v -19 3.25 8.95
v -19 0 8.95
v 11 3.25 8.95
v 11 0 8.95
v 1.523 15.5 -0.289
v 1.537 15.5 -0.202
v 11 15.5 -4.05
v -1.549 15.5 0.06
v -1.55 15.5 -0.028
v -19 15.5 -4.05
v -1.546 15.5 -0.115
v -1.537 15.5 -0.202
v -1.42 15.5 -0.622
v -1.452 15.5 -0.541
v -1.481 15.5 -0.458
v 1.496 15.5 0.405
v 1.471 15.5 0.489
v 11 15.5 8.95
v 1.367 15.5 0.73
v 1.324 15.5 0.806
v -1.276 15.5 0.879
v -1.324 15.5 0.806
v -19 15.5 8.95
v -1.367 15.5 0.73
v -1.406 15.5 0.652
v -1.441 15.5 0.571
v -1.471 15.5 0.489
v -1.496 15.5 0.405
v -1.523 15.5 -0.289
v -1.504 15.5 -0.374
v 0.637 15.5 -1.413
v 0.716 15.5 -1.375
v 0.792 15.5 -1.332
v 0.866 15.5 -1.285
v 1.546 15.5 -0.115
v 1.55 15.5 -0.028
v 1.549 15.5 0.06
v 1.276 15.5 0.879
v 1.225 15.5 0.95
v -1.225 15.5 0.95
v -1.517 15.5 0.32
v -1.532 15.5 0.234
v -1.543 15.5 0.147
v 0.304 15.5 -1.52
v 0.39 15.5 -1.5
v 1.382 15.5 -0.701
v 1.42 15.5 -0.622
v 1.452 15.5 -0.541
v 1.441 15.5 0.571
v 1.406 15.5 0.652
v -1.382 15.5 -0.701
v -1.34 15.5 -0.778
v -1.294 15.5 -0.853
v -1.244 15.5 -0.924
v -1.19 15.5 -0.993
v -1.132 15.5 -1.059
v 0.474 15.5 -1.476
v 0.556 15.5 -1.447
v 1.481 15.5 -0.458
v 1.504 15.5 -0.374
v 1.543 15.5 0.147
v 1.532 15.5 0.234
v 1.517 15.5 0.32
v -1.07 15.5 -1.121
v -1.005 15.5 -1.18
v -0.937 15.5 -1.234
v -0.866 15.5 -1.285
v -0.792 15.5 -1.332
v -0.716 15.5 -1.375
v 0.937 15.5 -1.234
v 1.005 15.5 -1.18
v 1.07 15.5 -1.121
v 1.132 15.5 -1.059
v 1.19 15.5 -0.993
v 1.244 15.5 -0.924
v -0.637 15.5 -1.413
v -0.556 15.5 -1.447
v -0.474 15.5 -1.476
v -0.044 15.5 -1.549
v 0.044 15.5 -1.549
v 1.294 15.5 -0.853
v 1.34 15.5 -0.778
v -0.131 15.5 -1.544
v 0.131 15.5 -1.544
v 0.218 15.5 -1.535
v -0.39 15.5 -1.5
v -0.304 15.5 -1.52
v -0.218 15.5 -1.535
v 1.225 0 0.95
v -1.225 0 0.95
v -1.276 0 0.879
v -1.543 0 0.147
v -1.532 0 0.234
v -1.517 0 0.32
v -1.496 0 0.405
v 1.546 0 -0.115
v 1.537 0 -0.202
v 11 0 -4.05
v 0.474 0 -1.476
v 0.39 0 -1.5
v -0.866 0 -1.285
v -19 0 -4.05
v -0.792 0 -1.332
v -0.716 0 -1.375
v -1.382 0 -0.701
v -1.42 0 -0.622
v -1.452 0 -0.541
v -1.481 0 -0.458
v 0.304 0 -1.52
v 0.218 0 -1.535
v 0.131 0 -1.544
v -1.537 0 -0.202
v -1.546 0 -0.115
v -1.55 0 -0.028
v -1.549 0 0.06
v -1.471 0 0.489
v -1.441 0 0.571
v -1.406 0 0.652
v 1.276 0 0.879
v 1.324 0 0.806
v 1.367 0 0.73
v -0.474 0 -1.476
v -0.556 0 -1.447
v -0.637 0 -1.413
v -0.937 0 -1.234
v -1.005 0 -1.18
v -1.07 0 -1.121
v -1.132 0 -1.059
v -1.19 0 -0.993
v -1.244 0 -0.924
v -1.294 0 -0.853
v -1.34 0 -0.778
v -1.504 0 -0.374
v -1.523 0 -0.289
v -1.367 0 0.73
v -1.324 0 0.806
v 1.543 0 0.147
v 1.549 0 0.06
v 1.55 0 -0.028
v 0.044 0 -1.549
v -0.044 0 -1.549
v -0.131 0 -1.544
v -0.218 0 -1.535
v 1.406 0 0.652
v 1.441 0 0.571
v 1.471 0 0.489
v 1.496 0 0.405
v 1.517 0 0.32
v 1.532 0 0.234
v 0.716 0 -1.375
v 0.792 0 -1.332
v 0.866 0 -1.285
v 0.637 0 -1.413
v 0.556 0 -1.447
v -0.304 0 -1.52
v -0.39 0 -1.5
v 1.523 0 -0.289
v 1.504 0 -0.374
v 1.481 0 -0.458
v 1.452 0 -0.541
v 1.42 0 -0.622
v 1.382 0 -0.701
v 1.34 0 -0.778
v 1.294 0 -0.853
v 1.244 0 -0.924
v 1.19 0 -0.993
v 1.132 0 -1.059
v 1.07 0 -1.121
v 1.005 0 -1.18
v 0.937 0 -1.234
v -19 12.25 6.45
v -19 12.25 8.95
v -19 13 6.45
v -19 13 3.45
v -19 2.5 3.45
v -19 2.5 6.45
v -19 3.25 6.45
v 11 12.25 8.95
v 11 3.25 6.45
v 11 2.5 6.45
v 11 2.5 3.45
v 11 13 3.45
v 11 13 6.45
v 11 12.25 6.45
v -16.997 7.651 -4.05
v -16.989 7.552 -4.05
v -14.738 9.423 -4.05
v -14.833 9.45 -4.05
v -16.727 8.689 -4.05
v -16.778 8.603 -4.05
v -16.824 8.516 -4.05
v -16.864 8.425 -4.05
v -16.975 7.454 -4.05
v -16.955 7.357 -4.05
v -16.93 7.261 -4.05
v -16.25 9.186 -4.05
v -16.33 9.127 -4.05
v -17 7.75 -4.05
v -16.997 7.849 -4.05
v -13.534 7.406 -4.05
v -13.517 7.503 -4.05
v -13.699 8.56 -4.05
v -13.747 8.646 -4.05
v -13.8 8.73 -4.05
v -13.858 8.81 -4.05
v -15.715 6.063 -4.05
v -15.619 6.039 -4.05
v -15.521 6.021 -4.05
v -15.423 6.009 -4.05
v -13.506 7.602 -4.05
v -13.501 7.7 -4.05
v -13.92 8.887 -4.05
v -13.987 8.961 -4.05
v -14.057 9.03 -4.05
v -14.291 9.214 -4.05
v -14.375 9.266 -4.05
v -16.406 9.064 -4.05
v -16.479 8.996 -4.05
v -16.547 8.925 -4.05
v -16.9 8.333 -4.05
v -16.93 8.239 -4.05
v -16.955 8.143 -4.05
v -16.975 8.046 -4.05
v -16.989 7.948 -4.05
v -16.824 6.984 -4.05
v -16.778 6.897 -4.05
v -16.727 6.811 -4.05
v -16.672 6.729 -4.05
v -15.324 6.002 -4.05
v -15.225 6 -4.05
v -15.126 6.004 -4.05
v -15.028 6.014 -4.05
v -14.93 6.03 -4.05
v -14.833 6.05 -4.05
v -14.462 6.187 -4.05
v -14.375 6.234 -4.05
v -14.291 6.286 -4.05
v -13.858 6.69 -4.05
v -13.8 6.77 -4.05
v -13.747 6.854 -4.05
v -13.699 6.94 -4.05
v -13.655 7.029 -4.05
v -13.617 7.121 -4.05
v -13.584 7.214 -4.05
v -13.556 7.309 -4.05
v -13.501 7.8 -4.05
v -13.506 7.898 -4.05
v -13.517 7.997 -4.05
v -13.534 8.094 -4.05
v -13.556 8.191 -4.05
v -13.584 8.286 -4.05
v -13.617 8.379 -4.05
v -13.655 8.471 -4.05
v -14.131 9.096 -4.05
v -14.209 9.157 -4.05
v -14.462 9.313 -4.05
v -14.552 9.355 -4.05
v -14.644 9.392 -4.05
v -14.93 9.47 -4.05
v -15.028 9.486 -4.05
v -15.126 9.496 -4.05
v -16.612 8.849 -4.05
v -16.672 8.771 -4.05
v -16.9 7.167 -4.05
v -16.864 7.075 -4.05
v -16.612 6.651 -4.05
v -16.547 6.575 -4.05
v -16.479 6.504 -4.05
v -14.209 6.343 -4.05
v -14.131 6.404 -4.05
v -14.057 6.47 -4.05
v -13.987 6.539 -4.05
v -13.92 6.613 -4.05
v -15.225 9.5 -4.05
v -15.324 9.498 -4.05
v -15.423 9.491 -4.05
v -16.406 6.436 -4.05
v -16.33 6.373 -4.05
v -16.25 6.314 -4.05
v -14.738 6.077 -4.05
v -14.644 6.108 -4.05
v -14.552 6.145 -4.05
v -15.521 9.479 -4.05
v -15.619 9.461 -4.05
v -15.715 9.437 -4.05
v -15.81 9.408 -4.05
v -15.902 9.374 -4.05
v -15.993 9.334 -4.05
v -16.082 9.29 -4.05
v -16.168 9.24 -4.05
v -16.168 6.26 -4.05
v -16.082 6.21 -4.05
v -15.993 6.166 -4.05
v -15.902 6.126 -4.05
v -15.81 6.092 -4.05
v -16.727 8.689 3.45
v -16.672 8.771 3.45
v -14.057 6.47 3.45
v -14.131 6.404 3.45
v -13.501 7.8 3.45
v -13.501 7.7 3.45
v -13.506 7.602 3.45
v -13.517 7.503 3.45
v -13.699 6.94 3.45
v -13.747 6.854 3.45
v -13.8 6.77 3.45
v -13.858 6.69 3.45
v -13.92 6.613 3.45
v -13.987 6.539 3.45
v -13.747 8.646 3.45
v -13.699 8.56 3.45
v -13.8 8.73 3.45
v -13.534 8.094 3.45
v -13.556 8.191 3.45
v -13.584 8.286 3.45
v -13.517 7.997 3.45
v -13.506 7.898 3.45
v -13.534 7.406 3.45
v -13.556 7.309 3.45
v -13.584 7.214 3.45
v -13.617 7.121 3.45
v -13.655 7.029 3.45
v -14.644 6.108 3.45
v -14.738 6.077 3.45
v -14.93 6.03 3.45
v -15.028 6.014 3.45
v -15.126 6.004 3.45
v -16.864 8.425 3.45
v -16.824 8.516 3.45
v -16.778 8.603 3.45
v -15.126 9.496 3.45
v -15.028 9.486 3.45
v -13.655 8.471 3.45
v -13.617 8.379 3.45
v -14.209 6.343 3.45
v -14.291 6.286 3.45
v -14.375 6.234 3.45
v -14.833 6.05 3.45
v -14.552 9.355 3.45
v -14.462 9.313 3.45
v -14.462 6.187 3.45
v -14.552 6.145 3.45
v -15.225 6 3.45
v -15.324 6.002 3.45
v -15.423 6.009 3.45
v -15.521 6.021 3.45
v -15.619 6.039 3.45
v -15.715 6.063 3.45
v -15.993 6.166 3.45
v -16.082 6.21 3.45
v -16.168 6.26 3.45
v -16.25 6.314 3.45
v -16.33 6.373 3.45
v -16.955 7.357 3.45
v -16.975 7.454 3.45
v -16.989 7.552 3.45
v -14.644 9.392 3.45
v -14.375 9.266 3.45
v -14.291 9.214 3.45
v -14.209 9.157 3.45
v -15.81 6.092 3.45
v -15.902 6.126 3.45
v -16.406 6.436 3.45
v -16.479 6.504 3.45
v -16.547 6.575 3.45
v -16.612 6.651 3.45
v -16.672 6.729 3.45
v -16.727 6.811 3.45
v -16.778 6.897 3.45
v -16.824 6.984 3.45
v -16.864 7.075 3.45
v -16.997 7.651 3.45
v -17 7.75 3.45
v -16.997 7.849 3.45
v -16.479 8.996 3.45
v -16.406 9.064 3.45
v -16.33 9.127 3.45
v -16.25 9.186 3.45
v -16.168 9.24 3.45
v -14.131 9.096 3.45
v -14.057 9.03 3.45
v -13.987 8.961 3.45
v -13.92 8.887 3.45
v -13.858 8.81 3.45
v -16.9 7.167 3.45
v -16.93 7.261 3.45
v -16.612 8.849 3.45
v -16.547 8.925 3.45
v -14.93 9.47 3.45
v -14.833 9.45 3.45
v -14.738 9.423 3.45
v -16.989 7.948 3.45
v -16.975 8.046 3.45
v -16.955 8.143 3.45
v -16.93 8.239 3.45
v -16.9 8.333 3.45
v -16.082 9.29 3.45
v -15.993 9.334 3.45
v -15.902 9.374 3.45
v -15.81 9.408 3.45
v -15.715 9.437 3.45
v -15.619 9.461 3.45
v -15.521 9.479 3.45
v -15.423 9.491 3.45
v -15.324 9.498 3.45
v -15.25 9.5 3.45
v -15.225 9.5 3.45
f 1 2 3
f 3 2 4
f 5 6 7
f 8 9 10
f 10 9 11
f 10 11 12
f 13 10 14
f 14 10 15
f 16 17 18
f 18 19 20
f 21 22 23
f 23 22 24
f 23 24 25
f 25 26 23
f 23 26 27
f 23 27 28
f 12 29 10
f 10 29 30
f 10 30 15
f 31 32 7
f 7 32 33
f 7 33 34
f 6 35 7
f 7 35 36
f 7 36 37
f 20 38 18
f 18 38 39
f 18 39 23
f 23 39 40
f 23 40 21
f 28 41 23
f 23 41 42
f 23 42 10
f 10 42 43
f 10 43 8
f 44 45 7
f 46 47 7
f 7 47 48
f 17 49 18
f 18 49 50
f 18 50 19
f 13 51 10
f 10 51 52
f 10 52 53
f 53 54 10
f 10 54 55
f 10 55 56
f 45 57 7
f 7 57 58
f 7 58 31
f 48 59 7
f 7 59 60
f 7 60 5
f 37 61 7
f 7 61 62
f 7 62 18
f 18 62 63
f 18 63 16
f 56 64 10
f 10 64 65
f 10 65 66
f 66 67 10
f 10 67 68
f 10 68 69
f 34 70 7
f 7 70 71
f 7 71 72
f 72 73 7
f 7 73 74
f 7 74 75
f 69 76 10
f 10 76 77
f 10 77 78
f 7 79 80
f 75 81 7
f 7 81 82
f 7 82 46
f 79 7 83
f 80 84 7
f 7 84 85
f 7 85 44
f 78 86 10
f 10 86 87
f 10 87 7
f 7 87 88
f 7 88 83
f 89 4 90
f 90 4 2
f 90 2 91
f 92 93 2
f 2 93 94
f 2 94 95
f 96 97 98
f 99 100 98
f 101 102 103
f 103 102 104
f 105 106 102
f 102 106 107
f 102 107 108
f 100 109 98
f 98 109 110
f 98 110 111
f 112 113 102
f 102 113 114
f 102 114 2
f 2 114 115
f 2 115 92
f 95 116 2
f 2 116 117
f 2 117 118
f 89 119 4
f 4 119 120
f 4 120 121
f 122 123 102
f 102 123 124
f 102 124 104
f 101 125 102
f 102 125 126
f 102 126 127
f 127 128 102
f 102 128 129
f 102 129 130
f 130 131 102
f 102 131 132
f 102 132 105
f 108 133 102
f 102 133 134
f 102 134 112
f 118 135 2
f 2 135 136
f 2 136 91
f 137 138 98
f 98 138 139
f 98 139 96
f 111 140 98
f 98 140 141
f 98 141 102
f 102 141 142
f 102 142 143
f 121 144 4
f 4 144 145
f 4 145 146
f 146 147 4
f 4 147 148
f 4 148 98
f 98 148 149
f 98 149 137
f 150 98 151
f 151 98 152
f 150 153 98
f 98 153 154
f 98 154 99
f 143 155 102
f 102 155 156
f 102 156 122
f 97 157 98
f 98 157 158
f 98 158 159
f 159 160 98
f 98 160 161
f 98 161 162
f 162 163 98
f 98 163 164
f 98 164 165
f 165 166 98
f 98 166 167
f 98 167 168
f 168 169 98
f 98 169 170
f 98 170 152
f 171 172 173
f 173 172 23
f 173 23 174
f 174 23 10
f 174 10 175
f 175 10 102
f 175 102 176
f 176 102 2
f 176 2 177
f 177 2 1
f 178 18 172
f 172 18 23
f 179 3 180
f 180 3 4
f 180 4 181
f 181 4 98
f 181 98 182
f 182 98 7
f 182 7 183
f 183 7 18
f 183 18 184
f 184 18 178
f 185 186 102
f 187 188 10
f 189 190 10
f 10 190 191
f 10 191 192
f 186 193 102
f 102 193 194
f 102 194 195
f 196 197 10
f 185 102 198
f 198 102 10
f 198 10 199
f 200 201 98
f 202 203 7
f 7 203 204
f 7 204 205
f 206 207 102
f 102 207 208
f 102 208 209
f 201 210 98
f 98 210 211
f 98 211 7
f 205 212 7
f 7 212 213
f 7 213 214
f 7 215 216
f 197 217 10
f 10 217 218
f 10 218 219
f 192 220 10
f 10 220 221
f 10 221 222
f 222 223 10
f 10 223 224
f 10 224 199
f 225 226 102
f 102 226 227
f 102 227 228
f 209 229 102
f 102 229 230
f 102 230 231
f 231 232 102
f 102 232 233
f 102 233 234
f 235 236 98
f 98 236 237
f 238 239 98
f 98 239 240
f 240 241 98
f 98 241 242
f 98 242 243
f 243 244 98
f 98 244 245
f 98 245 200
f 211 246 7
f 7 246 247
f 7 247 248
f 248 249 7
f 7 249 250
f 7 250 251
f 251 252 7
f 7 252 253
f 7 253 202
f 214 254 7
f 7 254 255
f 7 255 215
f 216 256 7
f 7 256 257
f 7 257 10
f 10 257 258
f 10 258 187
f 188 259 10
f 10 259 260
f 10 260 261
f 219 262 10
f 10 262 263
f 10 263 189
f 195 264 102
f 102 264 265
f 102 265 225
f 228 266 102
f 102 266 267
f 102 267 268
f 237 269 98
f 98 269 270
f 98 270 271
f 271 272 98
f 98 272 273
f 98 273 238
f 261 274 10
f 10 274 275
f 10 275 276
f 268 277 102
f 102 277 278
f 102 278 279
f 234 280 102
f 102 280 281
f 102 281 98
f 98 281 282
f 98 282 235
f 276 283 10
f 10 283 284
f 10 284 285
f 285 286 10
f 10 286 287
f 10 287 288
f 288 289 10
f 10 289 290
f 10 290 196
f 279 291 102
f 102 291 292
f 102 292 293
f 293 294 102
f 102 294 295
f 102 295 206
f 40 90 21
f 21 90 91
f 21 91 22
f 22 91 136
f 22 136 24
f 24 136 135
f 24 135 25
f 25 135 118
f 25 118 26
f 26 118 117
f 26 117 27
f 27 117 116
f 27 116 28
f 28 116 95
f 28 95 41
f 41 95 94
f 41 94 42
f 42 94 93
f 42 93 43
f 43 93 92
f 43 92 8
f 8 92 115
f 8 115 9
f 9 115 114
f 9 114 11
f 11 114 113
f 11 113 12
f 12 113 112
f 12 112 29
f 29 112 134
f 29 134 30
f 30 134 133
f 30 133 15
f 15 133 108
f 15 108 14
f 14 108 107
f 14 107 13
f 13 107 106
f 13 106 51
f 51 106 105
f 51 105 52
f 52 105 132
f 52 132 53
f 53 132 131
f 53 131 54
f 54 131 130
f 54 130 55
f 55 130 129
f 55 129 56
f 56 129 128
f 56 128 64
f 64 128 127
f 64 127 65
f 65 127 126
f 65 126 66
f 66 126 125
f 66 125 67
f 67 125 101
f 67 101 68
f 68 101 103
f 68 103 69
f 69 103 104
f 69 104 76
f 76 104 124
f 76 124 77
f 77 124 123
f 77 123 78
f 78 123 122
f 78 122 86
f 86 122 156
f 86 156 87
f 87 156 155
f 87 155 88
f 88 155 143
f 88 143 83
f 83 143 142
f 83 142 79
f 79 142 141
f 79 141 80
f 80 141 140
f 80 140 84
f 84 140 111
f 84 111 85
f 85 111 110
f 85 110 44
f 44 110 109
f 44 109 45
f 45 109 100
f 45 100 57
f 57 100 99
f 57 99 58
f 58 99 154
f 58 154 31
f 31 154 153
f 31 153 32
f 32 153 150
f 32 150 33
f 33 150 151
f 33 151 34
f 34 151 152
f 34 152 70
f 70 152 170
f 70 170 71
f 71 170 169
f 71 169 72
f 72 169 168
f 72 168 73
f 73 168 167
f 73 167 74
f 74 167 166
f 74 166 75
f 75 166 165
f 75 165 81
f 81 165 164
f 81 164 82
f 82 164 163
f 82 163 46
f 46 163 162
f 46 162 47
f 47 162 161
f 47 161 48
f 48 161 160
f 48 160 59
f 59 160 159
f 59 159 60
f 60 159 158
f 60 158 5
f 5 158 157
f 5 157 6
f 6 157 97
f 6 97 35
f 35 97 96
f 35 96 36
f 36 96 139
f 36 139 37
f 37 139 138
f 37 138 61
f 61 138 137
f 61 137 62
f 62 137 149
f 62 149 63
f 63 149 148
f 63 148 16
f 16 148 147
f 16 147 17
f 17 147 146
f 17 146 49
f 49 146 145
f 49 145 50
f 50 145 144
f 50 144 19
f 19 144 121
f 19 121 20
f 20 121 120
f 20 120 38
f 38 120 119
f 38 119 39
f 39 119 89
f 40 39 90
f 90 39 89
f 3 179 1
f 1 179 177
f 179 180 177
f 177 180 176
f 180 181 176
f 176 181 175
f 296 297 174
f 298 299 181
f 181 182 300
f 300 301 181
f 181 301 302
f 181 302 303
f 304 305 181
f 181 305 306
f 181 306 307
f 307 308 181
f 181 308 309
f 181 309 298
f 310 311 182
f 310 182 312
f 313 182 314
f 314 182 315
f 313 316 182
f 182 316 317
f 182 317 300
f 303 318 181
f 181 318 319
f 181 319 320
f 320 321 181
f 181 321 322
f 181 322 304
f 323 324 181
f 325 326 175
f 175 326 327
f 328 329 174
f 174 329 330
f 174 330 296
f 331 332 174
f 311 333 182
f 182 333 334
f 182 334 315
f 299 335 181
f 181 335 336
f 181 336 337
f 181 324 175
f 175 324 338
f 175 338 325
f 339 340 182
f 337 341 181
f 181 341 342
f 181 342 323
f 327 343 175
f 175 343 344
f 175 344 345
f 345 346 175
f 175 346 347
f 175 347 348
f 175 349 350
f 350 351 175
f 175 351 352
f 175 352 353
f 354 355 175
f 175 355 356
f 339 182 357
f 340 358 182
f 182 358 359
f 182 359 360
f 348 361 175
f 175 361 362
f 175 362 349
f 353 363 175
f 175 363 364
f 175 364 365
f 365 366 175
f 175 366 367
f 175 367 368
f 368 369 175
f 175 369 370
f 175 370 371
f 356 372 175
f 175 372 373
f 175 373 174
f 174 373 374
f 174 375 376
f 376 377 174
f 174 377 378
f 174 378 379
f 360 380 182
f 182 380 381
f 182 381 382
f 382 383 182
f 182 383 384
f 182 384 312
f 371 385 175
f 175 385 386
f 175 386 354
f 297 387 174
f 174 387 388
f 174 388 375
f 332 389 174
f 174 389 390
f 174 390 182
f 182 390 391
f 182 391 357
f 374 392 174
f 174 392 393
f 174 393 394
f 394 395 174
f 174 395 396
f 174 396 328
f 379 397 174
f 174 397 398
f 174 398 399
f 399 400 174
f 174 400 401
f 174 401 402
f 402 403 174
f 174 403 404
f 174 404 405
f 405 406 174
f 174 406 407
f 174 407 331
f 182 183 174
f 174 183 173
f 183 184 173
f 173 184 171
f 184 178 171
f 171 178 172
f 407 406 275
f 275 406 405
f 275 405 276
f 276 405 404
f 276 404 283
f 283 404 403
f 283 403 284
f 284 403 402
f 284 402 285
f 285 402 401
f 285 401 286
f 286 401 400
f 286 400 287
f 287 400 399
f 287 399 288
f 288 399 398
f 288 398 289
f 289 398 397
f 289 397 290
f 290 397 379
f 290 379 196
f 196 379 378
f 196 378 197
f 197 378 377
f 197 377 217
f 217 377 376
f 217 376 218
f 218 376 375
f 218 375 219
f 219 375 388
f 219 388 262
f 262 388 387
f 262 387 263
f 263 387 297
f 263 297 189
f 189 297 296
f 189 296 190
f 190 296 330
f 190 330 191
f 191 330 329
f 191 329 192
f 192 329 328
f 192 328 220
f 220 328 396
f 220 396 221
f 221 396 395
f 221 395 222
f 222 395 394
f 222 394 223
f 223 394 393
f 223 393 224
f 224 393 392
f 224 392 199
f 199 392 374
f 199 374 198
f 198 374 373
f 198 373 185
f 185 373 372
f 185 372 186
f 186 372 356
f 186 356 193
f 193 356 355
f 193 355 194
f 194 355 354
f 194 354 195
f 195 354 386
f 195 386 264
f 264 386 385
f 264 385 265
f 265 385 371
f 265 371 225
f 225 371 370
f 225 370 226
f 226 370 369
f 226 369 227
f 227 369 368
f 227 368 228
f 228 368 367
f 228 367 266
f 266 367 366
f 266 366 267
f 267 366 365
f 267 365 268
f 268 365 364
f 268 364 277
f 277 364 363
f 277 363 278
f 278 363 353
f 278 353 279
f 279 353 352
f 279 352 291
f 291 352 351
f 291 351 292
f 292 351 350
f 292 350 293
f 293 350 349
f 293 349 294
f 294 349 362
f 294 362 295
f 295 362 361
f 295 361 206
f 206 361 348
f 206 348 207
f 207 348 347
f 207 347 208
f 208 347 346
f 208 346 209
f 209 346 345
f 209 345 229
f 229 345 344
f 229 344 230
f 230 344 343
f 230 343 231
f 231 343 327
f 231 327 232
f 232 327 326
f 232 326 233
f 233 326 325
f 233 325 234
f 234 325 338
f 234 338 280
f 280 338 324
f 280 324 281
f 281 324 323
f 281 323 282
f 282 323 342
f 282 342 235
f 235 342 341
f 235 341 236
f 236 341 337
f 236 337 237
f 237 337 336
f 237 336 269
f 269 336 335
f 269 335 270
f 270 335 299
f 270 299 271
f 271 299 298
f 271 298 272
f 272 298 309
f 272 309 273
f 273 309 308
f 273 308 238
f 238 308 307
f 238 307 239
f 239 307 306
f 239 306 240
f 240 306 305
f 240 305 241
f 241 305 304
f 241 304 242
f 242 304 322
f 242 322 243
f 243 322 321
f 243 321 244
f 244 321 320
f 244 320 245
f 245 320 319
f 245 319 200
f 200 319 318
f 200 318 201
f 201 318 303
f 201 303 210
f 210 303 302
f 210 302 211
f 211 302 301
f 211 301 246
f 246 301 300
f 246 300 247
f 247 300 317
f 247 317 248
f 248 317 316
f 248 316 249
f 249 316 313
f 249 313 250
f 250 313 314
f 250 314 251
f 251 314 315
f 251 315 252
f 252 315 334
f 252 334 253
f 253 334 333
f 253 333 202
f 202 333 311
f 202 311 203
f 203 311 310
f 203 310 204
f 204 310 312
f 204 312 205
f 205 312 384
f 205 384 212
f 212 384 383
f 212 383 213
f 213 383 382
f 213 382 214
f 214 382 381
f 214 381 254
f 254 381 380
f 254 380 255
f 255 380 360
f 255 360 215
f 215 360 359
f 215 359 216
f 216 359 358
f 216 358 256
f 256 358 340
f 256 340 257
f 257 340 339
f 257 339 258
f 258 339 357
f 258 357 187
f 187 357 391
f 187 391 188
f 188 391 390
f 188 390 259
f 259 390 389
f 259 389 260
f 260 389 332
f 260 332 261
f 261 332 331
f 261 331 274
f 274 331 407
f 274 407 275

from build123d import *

# Parameters (mm, degrees)
SKETCH1_W           = 30
SKETCH1_H           = 13
BOSS_EXTRUDE1_DEPTH = 15.5
CUT_EXTRUDE1_DEPTH  = 35.933544052
SKETCH3_R           = 1.75
CUT_EXTRUDE2_DEPTH  = 28.753378173


with BuildPart() as part:
    # Sketch1 → Boss-Extrude1 (new body)
    with BuildSketch(Plane(origin=(0, 0, 0), x_dir=(1, 0, 0), z_dir=(0, 1, 0))):
        with Locations((-4, -2.45)):
            Rectangle(SKETCH1_W, SKETCH1_H)
        with BuildLine():
            Line((-1.224744871, -0.95), (1.224744871, -0.95))
            ThreePointArc((1.224744871, -0.95), (0, 1.55), (-1.224744871, -0.95))
        make_face(mode=Mode.SUBTRACT)
    extrude(amount=BOSS_EXTRUDE1_DEPTH)

    # Sketch2 → Cut-Extrude1 (cut, through all)
    with BuildSketch(Plane.ZY.offset(19)):
        Polygon((8.95, 12.25), (6.45, 12.25), (6.45, 13), (3.45, 13), (3.45, 2.5), (6.45, 2.5), (6.45, 3.25), (8.95, 3.25), align=None)
    extrude(amount=-CUT_EXTRUDE1_DEPTH, mode=Mode.SUBTRACT)

    # Sketch3 → Cut-Extrude2 (cut, through all)
    with BuildSketch(Plane(origin=(0, 0, -4.05), x_dir=(-1, 0, 0), z_dir=(0, 0, -1))):
        with Locations((15.25, 7.75)):
            Circle(SKETCH3_R)
    extrude(amount=-CUT_EXTRUDE2_DEPTH, mode=Mode.SUBTRACT)


solid = part.part
